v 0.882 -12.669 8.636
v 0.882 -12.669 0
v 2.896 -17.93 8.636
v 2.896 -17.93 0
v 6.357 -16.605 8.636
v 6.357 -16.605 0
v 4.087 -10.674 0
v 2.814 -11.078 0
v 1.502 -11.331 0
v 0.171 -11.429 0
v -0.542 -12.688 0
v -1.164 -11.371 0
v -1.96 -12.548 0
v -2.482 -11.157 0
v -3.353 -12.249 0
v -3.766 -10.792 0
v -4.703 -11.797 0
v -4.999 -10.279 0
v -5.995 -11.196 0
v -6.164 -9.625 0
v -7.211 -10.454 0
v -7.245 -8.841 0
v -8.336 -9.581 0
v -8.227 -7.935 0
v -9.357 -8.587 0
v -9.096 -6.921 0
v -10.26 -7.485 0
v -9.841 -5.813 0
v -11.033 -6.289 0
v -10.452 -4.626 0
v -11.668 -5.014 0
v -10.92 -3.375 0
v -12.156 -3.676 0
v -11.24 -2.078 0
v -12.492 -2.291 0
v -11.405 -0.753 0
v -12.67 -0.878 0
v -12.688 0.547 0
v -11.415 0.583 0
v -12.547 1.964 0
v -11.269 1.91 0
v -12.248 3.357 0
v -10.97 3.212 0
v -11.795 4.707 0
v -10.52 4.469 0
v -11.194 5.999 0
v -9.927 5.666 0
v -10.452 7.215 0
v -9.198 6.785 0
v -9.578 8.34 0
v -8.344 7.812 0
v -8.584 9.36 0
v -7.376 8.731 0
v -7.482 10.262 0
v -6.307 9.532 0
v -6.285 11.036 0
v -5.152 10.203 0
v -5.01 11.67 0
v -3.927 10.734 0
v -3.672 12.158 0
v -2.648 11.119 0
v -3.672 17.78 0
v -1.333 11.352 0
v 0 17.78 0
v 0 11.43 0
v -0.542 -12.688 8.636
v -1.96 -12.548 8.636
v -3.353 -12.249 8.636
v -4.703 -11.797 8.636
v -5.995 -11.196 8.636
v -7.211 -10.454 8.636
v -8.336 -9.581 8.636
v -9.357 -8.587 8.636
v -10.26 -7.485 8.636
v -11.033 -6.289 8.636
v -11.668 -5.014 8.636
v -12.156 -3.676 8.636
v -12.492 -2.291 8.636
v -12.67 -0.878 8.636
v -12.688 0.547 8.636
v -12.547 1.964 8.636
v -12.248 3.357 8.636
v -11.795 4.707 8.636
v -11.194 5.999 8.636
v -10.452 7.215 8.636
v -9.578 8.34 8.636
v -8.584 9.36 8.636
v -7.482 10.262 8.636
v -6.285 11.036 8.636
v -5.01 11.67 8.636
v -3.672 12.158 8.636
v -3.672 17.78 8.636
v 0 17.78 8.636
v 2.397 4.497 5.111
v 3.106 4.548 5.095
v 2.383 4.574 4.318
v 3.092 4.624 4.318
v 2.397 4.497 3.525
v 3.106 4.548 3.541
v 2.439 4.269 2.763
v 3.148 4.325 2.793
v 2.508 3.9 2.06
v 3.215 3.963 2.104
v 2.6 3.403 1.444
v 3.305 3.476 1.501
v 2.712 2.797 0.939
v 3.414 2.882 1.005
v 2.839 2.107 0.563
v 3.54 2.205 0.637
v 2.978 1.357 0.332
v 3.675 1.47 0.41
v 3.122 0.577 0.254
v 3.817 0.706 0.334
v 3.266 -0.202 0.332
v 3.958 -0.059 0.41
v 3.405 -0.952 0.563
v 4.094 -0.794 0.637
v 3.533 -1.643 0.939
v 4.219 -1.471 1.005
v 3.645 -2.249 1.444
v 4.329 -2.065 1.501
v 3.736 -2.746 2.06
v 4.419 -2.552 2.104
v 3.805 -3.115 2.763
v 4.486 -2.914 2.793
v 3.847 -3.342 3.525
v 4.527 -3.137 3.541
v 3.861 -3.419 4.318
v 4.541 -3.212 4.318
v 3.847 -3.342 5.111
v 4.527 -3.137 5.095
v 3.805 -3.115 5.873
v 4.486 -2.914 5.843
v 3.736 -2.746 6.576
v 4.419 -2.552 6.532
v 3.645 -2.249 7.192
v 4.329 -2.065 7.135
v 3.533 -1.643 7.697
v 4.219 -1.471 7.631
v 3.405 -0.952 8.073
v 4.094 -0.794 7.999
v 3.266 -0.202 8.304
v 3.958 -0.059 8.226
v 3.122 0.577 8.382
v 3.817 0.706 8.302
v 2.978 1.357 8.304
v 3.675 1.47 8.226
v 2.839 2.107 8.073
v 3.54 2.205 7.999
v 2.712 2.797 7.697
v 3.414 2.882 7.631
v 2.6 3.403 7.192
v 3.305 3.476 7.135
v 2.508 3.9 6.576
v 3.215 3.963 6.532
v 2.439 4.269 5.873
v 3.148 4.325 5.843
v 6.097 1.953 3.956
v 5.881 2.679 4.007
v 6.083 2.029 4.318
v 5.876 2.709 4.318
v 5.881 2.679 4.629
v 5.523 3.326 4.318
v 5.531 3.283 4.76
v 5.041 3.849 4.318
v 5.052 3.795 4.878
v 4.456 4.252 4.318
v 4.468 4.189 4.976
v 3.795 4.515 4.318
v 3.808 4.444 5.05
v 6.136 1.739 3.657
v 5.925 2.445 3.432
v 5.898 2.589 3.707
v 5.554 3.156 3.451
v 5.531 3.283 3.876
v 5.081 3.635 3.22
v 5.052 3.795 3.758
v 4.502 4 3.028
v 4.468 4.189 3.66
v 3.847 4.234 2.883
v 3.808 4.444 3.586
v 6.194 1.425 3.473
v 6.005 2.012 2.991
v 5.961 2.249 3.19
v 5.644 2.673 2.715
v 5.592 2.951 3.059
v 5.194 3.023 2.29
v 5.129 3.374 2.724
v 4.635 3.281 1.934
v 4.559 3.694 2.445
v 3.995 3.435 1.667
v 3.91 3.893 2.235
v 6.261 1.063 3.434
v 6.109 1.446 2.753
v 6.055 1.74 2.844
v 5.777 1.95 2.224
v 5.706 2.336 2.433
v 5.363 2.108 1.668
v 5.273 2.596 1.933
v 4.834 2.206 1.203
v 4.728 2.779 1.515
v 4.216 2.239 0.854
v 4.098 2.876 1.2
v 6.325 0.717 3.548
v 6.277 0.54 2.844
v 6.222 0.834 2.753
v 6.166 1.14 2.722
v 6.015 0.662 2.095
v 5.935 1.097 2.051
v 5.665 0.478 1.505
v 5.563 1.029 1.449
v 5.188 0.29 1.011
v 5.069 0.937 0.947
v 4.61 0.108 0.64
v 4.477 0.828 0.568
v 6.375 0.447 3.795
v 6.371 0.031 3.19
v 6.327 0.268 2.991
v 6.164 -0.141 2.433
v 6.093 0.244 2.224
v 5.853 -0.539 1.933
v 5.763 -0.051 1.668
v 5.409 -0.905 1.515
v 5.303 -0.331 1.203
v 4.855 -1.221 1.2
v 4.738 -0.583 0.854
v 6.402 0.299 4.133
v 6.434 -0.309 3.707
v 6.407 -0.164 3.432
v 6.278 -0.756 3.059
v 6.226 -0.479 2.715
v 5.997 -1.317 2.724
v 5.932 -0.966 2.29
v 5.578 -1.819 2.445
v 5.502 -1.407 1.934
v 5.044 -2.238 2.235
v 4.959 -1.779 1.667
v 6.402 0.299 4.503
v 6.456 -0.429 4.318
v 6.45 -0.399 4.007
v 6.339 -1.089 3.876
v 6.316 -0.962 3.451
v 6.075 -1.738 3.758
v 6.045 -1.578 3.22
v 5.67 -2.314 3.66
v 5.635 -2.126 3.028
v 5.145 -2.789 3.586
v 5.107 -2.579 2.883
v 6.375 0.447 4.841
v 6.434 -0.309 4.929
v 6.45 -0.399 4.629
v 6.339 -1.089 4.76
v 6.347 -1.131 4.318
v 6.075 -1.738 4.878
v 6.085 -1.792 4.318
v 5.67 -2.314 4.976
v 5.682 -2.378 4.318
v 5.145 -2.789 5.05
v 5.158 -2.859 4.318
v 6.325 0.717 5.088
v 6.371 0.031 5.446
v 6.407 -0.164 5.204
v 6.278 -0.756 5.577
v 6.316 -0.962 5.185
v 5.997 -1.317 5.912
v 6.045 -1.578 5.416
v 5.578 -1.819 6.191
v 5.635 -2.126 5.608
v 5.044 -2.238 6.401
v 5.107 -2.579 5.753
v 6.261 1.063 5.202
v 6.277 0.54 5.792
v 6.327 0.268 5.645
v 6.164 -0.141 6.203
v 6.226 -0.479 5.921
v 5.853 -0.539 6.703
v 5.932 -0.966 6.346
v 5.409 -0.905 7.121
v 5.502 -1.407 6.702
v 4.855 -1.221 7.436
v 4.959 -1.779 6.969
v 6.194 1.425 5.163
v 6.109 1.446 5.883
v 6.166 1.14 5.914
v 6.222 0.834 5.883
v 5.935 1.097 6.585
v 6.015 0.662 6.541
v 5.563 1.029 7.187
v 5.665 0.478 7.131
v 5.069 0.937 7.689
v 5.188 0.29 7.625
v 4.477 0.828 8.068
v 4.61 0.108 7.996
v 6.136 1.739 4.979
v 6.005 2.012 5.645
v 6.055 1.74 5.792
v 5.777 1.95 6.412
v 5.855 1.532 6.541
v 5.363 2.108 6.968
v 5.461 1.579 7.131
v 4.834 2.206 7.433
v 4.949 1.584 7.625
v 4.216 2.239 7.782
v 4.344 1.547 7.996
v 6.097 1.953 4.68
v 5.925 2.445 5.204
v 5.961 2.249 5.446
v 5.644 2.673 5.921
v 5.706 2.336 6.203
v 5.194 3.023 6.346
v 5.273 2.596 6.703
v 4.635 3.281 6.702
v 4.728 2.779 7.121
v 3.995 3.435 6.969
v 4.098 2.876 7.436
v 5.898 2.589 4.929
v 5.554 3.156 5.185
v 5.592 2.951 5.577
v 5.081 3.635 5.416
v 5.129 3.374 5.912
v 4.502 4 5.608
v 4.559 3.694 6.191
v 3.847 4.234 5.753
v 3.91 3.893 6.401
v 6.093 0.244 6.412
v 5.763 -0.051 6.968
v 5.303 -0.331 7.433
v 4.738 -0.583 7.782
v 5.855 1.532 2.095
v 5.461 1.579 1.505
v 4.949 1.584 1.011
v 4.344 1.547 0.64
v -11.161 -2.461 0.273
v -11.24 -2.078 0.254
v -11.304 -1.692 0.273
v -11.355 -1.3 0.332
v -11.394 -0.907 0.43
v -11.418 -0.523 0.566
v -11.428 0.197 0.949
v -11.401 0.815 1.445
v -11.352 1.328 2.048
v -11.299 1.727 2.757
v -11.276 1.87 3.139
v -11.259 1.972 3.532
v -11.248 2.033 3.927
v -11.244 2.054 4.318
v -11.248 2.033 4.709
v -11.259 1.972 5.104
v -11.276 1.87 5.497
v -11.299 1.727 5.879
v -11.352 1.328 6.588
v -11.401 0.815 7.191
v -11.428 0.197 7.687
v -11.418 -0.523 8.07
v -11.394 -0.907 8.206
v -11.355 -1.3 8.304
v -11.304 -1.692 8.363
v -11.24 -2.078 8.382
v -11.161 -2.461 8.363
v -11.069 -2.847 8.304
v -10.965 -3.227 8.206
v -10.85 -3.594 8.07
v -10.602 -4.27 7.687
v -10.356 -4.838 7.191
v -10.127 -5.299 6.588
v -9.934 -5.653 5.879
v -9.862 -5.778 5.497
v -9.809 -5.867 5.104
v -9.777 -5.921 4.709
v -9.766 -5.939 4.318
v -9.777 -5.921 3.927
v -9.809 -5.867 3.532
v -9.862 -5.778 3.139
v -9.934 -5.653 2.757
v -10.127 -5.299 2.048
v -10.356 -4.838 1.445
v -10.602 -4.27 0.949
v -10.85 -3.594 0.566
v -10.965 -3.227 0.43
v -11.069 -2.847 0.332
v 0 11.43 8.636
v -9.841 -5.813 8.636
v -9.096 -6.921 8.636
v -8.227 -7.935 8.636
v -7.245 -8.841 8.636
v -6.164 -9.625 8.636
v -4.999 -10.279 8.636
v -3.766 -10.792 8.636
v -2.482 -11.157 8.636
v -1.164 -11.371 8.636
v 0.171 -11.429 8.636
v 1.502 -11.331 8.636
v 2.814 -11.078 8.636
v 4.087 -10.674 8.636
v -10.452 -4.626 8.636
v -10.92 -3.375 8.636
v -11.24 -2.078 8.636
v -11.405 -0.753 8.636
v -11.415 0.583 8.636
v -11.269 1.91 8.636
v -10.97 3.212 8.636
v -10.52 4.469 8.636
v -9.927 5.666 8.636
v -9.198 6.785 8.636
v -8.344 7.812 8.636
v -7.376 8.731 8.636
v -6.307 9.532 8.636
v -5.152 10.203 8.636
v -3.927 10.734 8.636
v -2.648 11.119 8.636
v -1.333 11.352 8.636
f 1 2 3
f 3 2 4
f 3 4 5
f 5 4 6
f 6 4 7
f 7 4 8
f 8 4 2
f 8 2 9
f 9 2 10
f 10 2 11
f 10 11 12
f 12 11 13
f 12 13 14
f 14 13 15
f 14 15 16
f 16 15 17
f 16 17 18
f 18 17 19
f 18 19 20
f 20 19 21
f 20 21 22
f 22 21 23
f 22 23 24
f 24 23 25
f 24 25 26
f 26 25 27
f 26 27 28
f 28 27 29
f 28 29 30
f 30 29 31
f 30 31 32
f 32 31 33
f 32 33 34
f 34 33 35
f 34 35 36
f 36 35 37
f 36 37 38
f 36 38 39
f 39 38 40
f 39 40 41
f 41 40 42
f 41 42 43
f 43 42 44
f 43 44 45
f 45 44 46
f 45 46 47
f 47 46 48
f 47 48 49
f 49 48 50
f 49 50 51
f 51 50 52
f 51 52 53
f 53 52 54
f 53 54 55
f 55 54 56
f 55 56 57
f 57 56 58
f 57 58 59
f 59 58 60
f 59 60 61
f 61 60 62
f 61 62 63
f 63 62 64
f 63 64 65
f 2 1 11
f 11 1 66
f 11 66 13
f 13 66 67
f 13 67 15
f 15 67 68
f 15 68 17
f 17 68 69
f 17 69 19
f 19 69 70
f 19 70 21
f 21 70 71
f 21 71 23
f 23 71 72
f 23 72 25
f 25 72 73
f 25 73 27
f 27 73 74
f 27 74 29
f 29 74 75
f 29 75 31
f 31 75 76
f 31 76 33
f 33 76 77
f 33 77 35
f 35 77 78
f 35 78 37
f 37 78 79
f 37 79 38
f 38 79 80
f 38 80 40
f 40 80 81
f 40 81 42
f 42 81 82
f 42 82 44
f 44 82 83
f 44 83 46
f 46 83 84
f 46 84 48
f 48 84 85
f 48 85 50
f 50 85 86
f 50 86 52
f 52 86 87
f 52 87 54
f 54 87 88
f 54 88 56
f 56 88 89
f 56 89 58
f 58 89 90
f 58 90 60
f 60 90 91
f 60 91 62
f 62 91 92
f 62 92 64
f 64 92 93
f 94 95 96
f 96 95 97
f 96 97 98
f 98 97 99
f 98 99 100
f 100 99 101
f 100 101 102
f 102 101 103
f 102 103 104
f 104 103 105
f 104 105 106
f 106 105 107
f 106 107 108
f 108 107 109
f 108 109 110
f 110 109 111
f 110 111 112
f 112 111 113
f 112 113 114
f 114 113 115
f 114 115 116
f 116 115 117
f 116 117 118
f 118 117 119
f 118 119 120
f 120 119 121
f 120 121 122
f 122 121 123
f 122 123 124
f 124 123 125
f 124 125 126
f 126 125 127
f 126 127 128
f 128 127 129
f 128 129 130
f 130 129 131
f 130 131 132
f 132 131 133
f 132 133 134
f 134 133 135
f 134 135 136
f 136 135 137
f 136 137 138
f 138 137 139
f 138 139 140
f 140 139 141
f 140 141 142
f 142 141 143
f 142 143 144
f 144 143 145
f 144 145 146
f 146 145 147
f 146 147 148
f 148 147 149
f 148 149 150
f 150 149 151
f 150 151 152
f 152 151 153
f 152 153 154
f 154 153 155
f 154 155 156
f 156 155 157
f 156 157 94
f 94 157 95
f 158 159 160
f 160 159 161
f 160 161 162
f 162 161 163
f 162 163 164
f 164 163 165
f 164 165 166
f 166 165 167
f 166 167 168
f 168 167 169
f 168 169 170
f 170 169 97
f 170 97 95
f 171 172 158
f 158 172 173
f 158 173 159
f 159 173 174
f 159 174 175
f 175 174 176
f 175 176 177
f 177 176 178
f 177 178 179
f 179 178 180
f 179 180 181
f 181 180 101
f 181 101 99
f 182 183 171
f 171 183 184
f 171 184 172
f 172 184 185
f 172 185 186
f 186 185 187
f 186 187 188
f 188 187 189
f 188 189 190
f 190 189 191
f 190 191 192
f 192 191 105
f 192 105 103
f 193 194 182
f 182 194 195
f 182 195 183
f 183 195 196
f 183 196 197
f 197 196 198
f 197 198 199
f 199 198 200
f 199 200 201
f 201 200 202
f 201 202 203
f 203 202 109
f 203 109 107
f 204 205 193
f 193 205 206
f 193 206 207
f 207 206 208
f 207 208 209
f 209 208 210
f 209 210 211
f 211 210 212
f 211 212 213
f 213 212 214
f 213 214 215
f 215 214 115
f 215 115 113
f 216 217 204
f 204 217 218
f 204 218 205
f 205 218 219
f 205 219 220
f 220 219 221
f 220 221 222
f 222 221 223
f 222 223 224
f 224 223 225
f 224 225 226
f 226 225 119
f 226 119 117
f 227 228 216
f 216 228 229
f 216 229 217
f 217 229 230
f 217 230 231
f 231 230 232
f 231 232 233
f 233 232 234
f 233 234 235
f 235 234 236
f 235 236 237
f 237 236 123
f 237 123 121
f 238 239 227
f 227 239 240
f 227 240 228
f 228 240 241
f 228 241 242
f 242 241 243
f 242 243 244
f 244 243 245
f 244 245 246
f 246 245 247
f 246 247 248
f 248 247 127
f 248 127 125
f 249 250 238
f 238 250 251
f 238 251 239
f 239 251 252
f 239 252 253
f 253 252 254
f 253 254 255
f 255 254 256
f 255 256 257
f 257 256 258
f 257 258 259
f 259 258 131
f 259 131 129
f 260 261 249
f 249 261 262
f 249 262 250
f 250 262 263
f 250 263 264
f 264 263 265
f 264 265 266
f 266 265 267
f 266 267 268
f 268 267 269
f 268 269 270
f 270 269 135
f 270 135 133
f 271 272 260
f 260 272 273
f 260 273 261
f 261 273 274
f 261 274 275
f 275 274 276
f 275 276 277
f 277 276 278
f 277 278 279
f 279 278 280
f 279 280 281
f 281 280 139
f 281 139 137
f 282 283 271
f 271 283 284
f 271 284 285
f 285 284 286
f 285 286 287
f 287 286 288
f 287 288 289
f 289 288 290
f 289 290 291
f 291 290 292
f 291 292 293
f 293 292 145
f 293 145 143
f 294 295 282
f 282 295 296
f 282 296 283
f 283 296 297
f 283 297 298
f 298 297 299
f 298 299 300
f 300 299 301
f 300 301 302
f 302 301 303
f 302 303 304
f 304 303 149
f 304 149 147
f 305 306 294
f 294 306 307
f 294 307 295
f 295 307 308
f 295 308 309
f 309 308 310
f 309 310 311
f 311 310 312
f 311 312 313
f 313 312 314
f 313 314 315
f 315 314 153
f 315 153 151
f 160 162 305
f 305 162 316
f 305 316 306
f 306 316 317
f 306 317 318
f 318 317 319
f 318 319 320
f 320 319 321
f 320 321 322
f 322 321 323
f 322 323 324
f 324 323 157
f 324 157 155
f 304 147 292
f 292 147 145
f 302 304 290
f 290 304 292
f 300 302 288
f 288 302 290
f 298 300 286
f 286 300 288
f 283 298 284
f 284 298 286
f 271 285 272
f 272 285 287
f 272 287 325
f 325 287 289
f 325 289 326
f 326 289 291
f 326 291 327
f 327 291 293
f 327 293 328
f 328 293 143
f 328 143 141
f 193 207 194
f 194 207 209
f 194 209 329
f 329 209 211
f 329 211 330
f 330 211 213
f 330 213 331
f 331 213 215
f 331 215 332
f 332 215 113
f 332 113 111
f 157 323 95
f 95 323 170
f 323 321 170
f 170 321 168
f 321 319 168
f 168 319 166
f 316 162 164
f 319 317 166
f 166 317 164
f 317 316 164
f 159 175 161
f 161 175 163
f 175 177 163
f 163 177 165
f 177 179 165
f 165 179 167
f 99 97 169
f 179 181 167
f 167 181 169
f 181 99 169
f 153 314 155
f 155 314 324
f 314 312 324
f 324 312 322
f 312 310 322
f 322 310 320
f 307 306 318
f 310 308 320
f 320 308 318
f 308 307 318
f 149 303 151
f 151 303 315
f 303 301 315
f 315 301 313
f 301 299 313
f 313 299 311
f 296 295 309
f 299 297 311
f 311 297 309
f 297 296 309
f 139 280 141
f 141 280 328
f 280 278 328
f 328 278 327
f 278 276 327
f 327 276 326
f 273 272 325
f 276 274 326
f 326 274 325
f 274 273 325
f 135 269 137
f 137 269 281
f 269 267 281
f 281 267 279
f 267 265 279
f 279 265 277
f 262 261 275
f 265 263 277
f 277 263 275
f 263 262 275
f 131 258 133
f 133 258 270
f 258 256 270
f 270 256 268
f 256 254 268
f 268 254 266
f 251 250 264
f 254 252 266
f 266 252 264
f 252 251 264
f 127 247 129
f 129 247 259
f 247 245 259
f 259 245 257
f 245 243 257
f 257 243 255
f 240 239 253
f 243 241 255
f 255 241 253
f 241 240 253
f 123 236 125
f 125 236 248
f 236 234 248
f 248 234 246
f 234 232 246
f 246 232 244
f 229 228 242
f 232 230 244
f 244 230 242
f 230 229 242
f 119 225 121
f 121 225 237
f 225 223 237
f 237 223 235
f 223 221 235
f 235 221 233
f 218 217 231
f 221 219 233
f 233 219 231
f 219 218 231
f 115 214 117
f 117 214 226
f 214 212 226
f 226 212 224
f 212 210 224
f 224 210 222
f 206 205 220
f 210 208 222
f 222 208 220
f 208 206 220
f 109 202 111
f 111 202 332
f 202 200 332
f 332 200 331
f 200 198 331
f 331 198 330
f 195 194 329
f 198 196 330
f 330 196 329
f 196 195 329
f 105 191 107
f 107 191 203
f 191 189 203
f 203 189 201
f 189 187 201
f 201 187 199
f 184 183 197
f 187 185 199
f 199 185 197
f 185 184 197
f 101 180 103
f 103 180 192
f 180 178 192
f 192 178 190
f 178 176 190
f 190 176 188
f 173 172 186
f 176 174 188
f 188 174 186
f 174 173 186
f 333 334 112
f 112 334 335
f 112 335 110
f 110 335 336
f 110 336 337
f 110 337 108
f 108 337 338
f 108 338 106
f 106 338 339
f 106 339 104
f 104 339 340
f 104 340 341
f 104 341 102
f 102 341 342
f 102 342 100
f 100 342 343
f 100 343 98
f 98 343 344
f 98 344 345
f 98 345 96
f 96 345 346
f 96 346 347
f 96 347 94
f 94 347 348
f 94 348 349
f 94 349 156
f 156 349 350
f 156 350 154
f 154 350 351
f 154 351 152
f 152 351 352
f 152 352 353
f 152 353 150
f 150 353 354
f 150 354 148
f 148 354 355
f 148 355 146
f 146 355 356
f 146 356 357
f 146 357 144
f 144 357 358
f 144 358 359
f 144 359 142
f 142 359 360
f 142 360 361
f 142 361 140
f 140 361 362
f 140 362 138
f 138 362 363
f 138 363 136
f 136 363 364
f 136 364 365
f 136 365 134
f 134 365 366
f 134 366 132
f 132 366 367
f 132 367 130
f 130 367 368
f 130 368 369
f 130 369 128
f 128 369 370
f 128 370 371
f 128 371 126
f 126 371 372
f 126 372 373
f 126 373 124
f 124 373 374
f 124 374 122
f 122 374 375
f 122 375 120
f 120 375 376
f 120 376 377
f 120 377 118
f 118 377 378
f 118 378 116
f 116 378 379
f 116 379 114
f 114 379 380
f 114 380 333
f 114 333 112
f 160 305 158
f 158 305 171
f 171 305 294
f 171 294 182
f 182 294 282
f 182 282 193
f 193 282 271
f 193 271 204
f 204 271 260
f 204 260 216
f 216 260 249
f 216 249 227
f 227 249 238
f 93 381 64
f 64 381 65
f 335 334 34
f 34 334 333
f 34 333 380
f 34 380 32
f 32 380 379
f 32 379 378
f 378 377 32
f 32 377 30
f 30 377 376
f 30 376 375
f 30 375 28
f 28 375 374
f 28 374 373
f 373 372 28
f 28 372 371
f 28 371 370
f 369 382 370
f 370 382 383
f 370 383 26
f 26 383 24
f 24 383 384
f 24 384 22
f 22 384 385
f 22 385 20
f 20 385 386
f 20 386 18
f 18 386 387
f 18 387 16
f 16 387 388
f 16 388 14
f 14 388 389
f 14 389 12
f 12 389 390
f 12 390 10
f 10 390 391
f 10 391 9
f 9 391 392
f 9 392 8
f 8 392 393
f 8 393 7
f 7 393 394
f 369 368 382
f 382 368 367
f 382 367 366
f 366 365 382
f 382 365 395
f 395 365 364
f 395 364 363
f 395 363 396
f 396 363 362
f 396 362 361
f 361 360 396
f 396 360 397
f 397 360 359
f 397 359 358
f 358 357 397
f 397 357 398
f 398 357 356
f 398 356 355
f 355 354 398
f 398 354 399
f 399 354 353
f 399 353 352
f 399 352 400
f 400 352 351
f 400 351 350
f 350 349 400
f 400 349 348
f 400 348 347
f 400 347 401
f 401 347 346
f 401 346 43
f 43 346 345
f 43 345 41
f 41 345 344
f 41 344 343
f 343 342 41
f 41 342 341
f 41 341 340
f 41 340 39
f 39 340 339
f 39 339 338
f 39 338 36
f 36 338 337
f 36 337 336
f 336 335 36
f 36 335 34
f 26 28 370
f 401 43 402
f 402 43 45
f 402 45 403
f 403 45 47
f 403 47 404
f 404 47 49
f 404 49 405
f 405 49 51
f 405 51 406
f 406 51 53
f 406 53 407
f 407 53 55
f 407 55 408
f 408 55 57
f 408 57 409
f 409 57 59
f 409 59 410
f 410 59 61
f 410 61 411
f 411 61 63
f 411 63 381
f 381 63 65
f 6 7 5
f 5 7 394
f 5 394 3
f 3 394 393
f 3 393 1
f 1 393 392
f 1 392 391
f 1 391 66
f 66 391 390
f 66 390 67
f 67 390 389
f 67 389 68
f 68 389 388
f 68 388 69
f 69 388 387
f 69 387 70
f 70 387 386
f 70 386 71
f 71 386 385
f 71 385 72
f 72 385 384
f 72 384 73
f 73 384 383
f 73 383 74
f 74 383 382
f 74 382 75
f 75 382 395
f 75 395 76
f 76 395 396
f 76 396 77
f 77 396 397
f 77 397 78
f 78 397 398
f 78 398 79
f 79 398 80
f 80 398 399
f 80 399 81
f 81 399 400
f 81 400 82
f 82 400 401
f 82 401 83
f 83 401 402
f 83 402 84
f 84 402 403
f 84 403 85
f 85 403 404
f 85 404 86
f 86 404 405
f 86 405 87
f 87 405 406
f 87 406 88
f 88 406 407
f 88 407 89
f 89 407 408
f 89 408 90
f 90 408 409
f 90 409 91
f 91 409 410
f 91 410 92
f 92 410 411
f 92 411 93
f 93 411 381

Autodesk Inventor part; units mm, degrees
ref_plane "YZ Plane" through (0, 0, 0) normal (1, 0, 0) x (0, 1, 0)
ref_plane "XZ Plane" through (0, 0, 0) normal (0, 1, 0) x (-1, 0, 0)
sketch "Sketch1" plane through (0, 0, 0) normal (0, 0, 1) x (1, 0, 0)
  arc A0 (0, 12.7) -> (4.541, -11.8604) centre (0, 0) ccw
  arc A1 (0, 11.43) -> (4.0869, -10.6744) centre (0, 0) ccw
  line L0 (0, 11.43) -> (0, 12.7)
  line L1 (4.541, -11.8604) -> (4.0869, -10.6744)
  dimension "d0" = 25.4
  dimension "d1" = 22.86
extrude "Extrusion1" add sketch "Sketch1" along normal blind 8.636
ref_plane "Work Plane1" through (0, 0, 0) normal (0.1818, -0.9833, 0) x (0, 0, -1)
sketch "Sketch2" plane through (0, 0, 0) normal (0.1818, -0.9833, 0) x (0, 0, -1)
  line L0 (-8.636, -11.43) -> (0, -11.43) projected
  point P0 (0, 0)
  point P1 (-4.318, -11.43)
ref_plane "Work Plane2" through (-11.2395, -2.0781, 4.318) normal (0.9833, 0.1818, 0) x (-0.1818, 0.9833, 0)
sketch "Sketch3" plane through (-11.2395, -2.0781, 4.318) normal (0.9833, 0.1818, 0) x (-0.1818, 0.9833, 0)
  circle A0 centre (0, 0) radius 4.064
  point P0 (0, -4.318)
  dimension "d4" = 8.128
extrude "Extrusion2" add sketch "Sketch3" along normal blind 17.78
fillet "Fillet1" radius 3.175 1 edges at (6.983, -2.8418, 4.318)
ref_plane "Work Plane3" through (0, 12.7, 0) normal (0, 1, 0) x (-1, 0, 0)
sketch "Sketch4" plane through (0, 12.7, 0) normal (0, 1, 0) x (-1, 0, 0)
  line L0 (0, 0) -> (0, 8.636) projected
  line L1 (-4.0869, 8.636) -> (11.43, 8.636) projected
  line L2 (0, 0) -> (3.6716, 0)
  line L3 (3.6716, 0) -> (3.6716, 8.636)
  line L4 (3.6716, 8.636) -> (0, 8.636)
  line L5 (0, 8.636) -> (0, 0)
extrude "Extrusion3" add sketch "Sketch4" along normal blind 5.08 and the other way blind 0.9525
ref_plane "Work Plane4" through (4.541, -11.8604, 0) normal (0.3576, -0.9339, 0) x (0.9339, 0.3576, 0)
sketch "Sketch5" plane through (4.541, -11.8604, 0) normal (0.3576, -0.9339, 0) x (0.9339, 0.3576, 0)
  line L0 (-3.7062, 0) -> (-3.7062, 8.66)
  line L1 (-3.7062, 0) -> (0, 0)
  line L2 (0, 0) -> (0, 8.636)
  line L3 (0, 8.636) -> (-3.7062, 8.636)
  line L4 (-3.7062, 8.636) -> (-3.7062, 0)
  line L5 (0.9182, 8.636) -> (-12.7, 8.636) projected
  line L6 (0, 0) -> (0, 8.636) projected
  line L7 (0.9182, 0) -> (-12.7, 0) projected
  point P0 (-3.7062, 8.636)
  dimension "d12" = 0
  dimension "d13" = 0
  dimension "d14" = 0
extrude "Extrusion4" add sketch "Sketch5" along normal blind 5.08 and the other way blind 1.016
properties part number "Clip1"
